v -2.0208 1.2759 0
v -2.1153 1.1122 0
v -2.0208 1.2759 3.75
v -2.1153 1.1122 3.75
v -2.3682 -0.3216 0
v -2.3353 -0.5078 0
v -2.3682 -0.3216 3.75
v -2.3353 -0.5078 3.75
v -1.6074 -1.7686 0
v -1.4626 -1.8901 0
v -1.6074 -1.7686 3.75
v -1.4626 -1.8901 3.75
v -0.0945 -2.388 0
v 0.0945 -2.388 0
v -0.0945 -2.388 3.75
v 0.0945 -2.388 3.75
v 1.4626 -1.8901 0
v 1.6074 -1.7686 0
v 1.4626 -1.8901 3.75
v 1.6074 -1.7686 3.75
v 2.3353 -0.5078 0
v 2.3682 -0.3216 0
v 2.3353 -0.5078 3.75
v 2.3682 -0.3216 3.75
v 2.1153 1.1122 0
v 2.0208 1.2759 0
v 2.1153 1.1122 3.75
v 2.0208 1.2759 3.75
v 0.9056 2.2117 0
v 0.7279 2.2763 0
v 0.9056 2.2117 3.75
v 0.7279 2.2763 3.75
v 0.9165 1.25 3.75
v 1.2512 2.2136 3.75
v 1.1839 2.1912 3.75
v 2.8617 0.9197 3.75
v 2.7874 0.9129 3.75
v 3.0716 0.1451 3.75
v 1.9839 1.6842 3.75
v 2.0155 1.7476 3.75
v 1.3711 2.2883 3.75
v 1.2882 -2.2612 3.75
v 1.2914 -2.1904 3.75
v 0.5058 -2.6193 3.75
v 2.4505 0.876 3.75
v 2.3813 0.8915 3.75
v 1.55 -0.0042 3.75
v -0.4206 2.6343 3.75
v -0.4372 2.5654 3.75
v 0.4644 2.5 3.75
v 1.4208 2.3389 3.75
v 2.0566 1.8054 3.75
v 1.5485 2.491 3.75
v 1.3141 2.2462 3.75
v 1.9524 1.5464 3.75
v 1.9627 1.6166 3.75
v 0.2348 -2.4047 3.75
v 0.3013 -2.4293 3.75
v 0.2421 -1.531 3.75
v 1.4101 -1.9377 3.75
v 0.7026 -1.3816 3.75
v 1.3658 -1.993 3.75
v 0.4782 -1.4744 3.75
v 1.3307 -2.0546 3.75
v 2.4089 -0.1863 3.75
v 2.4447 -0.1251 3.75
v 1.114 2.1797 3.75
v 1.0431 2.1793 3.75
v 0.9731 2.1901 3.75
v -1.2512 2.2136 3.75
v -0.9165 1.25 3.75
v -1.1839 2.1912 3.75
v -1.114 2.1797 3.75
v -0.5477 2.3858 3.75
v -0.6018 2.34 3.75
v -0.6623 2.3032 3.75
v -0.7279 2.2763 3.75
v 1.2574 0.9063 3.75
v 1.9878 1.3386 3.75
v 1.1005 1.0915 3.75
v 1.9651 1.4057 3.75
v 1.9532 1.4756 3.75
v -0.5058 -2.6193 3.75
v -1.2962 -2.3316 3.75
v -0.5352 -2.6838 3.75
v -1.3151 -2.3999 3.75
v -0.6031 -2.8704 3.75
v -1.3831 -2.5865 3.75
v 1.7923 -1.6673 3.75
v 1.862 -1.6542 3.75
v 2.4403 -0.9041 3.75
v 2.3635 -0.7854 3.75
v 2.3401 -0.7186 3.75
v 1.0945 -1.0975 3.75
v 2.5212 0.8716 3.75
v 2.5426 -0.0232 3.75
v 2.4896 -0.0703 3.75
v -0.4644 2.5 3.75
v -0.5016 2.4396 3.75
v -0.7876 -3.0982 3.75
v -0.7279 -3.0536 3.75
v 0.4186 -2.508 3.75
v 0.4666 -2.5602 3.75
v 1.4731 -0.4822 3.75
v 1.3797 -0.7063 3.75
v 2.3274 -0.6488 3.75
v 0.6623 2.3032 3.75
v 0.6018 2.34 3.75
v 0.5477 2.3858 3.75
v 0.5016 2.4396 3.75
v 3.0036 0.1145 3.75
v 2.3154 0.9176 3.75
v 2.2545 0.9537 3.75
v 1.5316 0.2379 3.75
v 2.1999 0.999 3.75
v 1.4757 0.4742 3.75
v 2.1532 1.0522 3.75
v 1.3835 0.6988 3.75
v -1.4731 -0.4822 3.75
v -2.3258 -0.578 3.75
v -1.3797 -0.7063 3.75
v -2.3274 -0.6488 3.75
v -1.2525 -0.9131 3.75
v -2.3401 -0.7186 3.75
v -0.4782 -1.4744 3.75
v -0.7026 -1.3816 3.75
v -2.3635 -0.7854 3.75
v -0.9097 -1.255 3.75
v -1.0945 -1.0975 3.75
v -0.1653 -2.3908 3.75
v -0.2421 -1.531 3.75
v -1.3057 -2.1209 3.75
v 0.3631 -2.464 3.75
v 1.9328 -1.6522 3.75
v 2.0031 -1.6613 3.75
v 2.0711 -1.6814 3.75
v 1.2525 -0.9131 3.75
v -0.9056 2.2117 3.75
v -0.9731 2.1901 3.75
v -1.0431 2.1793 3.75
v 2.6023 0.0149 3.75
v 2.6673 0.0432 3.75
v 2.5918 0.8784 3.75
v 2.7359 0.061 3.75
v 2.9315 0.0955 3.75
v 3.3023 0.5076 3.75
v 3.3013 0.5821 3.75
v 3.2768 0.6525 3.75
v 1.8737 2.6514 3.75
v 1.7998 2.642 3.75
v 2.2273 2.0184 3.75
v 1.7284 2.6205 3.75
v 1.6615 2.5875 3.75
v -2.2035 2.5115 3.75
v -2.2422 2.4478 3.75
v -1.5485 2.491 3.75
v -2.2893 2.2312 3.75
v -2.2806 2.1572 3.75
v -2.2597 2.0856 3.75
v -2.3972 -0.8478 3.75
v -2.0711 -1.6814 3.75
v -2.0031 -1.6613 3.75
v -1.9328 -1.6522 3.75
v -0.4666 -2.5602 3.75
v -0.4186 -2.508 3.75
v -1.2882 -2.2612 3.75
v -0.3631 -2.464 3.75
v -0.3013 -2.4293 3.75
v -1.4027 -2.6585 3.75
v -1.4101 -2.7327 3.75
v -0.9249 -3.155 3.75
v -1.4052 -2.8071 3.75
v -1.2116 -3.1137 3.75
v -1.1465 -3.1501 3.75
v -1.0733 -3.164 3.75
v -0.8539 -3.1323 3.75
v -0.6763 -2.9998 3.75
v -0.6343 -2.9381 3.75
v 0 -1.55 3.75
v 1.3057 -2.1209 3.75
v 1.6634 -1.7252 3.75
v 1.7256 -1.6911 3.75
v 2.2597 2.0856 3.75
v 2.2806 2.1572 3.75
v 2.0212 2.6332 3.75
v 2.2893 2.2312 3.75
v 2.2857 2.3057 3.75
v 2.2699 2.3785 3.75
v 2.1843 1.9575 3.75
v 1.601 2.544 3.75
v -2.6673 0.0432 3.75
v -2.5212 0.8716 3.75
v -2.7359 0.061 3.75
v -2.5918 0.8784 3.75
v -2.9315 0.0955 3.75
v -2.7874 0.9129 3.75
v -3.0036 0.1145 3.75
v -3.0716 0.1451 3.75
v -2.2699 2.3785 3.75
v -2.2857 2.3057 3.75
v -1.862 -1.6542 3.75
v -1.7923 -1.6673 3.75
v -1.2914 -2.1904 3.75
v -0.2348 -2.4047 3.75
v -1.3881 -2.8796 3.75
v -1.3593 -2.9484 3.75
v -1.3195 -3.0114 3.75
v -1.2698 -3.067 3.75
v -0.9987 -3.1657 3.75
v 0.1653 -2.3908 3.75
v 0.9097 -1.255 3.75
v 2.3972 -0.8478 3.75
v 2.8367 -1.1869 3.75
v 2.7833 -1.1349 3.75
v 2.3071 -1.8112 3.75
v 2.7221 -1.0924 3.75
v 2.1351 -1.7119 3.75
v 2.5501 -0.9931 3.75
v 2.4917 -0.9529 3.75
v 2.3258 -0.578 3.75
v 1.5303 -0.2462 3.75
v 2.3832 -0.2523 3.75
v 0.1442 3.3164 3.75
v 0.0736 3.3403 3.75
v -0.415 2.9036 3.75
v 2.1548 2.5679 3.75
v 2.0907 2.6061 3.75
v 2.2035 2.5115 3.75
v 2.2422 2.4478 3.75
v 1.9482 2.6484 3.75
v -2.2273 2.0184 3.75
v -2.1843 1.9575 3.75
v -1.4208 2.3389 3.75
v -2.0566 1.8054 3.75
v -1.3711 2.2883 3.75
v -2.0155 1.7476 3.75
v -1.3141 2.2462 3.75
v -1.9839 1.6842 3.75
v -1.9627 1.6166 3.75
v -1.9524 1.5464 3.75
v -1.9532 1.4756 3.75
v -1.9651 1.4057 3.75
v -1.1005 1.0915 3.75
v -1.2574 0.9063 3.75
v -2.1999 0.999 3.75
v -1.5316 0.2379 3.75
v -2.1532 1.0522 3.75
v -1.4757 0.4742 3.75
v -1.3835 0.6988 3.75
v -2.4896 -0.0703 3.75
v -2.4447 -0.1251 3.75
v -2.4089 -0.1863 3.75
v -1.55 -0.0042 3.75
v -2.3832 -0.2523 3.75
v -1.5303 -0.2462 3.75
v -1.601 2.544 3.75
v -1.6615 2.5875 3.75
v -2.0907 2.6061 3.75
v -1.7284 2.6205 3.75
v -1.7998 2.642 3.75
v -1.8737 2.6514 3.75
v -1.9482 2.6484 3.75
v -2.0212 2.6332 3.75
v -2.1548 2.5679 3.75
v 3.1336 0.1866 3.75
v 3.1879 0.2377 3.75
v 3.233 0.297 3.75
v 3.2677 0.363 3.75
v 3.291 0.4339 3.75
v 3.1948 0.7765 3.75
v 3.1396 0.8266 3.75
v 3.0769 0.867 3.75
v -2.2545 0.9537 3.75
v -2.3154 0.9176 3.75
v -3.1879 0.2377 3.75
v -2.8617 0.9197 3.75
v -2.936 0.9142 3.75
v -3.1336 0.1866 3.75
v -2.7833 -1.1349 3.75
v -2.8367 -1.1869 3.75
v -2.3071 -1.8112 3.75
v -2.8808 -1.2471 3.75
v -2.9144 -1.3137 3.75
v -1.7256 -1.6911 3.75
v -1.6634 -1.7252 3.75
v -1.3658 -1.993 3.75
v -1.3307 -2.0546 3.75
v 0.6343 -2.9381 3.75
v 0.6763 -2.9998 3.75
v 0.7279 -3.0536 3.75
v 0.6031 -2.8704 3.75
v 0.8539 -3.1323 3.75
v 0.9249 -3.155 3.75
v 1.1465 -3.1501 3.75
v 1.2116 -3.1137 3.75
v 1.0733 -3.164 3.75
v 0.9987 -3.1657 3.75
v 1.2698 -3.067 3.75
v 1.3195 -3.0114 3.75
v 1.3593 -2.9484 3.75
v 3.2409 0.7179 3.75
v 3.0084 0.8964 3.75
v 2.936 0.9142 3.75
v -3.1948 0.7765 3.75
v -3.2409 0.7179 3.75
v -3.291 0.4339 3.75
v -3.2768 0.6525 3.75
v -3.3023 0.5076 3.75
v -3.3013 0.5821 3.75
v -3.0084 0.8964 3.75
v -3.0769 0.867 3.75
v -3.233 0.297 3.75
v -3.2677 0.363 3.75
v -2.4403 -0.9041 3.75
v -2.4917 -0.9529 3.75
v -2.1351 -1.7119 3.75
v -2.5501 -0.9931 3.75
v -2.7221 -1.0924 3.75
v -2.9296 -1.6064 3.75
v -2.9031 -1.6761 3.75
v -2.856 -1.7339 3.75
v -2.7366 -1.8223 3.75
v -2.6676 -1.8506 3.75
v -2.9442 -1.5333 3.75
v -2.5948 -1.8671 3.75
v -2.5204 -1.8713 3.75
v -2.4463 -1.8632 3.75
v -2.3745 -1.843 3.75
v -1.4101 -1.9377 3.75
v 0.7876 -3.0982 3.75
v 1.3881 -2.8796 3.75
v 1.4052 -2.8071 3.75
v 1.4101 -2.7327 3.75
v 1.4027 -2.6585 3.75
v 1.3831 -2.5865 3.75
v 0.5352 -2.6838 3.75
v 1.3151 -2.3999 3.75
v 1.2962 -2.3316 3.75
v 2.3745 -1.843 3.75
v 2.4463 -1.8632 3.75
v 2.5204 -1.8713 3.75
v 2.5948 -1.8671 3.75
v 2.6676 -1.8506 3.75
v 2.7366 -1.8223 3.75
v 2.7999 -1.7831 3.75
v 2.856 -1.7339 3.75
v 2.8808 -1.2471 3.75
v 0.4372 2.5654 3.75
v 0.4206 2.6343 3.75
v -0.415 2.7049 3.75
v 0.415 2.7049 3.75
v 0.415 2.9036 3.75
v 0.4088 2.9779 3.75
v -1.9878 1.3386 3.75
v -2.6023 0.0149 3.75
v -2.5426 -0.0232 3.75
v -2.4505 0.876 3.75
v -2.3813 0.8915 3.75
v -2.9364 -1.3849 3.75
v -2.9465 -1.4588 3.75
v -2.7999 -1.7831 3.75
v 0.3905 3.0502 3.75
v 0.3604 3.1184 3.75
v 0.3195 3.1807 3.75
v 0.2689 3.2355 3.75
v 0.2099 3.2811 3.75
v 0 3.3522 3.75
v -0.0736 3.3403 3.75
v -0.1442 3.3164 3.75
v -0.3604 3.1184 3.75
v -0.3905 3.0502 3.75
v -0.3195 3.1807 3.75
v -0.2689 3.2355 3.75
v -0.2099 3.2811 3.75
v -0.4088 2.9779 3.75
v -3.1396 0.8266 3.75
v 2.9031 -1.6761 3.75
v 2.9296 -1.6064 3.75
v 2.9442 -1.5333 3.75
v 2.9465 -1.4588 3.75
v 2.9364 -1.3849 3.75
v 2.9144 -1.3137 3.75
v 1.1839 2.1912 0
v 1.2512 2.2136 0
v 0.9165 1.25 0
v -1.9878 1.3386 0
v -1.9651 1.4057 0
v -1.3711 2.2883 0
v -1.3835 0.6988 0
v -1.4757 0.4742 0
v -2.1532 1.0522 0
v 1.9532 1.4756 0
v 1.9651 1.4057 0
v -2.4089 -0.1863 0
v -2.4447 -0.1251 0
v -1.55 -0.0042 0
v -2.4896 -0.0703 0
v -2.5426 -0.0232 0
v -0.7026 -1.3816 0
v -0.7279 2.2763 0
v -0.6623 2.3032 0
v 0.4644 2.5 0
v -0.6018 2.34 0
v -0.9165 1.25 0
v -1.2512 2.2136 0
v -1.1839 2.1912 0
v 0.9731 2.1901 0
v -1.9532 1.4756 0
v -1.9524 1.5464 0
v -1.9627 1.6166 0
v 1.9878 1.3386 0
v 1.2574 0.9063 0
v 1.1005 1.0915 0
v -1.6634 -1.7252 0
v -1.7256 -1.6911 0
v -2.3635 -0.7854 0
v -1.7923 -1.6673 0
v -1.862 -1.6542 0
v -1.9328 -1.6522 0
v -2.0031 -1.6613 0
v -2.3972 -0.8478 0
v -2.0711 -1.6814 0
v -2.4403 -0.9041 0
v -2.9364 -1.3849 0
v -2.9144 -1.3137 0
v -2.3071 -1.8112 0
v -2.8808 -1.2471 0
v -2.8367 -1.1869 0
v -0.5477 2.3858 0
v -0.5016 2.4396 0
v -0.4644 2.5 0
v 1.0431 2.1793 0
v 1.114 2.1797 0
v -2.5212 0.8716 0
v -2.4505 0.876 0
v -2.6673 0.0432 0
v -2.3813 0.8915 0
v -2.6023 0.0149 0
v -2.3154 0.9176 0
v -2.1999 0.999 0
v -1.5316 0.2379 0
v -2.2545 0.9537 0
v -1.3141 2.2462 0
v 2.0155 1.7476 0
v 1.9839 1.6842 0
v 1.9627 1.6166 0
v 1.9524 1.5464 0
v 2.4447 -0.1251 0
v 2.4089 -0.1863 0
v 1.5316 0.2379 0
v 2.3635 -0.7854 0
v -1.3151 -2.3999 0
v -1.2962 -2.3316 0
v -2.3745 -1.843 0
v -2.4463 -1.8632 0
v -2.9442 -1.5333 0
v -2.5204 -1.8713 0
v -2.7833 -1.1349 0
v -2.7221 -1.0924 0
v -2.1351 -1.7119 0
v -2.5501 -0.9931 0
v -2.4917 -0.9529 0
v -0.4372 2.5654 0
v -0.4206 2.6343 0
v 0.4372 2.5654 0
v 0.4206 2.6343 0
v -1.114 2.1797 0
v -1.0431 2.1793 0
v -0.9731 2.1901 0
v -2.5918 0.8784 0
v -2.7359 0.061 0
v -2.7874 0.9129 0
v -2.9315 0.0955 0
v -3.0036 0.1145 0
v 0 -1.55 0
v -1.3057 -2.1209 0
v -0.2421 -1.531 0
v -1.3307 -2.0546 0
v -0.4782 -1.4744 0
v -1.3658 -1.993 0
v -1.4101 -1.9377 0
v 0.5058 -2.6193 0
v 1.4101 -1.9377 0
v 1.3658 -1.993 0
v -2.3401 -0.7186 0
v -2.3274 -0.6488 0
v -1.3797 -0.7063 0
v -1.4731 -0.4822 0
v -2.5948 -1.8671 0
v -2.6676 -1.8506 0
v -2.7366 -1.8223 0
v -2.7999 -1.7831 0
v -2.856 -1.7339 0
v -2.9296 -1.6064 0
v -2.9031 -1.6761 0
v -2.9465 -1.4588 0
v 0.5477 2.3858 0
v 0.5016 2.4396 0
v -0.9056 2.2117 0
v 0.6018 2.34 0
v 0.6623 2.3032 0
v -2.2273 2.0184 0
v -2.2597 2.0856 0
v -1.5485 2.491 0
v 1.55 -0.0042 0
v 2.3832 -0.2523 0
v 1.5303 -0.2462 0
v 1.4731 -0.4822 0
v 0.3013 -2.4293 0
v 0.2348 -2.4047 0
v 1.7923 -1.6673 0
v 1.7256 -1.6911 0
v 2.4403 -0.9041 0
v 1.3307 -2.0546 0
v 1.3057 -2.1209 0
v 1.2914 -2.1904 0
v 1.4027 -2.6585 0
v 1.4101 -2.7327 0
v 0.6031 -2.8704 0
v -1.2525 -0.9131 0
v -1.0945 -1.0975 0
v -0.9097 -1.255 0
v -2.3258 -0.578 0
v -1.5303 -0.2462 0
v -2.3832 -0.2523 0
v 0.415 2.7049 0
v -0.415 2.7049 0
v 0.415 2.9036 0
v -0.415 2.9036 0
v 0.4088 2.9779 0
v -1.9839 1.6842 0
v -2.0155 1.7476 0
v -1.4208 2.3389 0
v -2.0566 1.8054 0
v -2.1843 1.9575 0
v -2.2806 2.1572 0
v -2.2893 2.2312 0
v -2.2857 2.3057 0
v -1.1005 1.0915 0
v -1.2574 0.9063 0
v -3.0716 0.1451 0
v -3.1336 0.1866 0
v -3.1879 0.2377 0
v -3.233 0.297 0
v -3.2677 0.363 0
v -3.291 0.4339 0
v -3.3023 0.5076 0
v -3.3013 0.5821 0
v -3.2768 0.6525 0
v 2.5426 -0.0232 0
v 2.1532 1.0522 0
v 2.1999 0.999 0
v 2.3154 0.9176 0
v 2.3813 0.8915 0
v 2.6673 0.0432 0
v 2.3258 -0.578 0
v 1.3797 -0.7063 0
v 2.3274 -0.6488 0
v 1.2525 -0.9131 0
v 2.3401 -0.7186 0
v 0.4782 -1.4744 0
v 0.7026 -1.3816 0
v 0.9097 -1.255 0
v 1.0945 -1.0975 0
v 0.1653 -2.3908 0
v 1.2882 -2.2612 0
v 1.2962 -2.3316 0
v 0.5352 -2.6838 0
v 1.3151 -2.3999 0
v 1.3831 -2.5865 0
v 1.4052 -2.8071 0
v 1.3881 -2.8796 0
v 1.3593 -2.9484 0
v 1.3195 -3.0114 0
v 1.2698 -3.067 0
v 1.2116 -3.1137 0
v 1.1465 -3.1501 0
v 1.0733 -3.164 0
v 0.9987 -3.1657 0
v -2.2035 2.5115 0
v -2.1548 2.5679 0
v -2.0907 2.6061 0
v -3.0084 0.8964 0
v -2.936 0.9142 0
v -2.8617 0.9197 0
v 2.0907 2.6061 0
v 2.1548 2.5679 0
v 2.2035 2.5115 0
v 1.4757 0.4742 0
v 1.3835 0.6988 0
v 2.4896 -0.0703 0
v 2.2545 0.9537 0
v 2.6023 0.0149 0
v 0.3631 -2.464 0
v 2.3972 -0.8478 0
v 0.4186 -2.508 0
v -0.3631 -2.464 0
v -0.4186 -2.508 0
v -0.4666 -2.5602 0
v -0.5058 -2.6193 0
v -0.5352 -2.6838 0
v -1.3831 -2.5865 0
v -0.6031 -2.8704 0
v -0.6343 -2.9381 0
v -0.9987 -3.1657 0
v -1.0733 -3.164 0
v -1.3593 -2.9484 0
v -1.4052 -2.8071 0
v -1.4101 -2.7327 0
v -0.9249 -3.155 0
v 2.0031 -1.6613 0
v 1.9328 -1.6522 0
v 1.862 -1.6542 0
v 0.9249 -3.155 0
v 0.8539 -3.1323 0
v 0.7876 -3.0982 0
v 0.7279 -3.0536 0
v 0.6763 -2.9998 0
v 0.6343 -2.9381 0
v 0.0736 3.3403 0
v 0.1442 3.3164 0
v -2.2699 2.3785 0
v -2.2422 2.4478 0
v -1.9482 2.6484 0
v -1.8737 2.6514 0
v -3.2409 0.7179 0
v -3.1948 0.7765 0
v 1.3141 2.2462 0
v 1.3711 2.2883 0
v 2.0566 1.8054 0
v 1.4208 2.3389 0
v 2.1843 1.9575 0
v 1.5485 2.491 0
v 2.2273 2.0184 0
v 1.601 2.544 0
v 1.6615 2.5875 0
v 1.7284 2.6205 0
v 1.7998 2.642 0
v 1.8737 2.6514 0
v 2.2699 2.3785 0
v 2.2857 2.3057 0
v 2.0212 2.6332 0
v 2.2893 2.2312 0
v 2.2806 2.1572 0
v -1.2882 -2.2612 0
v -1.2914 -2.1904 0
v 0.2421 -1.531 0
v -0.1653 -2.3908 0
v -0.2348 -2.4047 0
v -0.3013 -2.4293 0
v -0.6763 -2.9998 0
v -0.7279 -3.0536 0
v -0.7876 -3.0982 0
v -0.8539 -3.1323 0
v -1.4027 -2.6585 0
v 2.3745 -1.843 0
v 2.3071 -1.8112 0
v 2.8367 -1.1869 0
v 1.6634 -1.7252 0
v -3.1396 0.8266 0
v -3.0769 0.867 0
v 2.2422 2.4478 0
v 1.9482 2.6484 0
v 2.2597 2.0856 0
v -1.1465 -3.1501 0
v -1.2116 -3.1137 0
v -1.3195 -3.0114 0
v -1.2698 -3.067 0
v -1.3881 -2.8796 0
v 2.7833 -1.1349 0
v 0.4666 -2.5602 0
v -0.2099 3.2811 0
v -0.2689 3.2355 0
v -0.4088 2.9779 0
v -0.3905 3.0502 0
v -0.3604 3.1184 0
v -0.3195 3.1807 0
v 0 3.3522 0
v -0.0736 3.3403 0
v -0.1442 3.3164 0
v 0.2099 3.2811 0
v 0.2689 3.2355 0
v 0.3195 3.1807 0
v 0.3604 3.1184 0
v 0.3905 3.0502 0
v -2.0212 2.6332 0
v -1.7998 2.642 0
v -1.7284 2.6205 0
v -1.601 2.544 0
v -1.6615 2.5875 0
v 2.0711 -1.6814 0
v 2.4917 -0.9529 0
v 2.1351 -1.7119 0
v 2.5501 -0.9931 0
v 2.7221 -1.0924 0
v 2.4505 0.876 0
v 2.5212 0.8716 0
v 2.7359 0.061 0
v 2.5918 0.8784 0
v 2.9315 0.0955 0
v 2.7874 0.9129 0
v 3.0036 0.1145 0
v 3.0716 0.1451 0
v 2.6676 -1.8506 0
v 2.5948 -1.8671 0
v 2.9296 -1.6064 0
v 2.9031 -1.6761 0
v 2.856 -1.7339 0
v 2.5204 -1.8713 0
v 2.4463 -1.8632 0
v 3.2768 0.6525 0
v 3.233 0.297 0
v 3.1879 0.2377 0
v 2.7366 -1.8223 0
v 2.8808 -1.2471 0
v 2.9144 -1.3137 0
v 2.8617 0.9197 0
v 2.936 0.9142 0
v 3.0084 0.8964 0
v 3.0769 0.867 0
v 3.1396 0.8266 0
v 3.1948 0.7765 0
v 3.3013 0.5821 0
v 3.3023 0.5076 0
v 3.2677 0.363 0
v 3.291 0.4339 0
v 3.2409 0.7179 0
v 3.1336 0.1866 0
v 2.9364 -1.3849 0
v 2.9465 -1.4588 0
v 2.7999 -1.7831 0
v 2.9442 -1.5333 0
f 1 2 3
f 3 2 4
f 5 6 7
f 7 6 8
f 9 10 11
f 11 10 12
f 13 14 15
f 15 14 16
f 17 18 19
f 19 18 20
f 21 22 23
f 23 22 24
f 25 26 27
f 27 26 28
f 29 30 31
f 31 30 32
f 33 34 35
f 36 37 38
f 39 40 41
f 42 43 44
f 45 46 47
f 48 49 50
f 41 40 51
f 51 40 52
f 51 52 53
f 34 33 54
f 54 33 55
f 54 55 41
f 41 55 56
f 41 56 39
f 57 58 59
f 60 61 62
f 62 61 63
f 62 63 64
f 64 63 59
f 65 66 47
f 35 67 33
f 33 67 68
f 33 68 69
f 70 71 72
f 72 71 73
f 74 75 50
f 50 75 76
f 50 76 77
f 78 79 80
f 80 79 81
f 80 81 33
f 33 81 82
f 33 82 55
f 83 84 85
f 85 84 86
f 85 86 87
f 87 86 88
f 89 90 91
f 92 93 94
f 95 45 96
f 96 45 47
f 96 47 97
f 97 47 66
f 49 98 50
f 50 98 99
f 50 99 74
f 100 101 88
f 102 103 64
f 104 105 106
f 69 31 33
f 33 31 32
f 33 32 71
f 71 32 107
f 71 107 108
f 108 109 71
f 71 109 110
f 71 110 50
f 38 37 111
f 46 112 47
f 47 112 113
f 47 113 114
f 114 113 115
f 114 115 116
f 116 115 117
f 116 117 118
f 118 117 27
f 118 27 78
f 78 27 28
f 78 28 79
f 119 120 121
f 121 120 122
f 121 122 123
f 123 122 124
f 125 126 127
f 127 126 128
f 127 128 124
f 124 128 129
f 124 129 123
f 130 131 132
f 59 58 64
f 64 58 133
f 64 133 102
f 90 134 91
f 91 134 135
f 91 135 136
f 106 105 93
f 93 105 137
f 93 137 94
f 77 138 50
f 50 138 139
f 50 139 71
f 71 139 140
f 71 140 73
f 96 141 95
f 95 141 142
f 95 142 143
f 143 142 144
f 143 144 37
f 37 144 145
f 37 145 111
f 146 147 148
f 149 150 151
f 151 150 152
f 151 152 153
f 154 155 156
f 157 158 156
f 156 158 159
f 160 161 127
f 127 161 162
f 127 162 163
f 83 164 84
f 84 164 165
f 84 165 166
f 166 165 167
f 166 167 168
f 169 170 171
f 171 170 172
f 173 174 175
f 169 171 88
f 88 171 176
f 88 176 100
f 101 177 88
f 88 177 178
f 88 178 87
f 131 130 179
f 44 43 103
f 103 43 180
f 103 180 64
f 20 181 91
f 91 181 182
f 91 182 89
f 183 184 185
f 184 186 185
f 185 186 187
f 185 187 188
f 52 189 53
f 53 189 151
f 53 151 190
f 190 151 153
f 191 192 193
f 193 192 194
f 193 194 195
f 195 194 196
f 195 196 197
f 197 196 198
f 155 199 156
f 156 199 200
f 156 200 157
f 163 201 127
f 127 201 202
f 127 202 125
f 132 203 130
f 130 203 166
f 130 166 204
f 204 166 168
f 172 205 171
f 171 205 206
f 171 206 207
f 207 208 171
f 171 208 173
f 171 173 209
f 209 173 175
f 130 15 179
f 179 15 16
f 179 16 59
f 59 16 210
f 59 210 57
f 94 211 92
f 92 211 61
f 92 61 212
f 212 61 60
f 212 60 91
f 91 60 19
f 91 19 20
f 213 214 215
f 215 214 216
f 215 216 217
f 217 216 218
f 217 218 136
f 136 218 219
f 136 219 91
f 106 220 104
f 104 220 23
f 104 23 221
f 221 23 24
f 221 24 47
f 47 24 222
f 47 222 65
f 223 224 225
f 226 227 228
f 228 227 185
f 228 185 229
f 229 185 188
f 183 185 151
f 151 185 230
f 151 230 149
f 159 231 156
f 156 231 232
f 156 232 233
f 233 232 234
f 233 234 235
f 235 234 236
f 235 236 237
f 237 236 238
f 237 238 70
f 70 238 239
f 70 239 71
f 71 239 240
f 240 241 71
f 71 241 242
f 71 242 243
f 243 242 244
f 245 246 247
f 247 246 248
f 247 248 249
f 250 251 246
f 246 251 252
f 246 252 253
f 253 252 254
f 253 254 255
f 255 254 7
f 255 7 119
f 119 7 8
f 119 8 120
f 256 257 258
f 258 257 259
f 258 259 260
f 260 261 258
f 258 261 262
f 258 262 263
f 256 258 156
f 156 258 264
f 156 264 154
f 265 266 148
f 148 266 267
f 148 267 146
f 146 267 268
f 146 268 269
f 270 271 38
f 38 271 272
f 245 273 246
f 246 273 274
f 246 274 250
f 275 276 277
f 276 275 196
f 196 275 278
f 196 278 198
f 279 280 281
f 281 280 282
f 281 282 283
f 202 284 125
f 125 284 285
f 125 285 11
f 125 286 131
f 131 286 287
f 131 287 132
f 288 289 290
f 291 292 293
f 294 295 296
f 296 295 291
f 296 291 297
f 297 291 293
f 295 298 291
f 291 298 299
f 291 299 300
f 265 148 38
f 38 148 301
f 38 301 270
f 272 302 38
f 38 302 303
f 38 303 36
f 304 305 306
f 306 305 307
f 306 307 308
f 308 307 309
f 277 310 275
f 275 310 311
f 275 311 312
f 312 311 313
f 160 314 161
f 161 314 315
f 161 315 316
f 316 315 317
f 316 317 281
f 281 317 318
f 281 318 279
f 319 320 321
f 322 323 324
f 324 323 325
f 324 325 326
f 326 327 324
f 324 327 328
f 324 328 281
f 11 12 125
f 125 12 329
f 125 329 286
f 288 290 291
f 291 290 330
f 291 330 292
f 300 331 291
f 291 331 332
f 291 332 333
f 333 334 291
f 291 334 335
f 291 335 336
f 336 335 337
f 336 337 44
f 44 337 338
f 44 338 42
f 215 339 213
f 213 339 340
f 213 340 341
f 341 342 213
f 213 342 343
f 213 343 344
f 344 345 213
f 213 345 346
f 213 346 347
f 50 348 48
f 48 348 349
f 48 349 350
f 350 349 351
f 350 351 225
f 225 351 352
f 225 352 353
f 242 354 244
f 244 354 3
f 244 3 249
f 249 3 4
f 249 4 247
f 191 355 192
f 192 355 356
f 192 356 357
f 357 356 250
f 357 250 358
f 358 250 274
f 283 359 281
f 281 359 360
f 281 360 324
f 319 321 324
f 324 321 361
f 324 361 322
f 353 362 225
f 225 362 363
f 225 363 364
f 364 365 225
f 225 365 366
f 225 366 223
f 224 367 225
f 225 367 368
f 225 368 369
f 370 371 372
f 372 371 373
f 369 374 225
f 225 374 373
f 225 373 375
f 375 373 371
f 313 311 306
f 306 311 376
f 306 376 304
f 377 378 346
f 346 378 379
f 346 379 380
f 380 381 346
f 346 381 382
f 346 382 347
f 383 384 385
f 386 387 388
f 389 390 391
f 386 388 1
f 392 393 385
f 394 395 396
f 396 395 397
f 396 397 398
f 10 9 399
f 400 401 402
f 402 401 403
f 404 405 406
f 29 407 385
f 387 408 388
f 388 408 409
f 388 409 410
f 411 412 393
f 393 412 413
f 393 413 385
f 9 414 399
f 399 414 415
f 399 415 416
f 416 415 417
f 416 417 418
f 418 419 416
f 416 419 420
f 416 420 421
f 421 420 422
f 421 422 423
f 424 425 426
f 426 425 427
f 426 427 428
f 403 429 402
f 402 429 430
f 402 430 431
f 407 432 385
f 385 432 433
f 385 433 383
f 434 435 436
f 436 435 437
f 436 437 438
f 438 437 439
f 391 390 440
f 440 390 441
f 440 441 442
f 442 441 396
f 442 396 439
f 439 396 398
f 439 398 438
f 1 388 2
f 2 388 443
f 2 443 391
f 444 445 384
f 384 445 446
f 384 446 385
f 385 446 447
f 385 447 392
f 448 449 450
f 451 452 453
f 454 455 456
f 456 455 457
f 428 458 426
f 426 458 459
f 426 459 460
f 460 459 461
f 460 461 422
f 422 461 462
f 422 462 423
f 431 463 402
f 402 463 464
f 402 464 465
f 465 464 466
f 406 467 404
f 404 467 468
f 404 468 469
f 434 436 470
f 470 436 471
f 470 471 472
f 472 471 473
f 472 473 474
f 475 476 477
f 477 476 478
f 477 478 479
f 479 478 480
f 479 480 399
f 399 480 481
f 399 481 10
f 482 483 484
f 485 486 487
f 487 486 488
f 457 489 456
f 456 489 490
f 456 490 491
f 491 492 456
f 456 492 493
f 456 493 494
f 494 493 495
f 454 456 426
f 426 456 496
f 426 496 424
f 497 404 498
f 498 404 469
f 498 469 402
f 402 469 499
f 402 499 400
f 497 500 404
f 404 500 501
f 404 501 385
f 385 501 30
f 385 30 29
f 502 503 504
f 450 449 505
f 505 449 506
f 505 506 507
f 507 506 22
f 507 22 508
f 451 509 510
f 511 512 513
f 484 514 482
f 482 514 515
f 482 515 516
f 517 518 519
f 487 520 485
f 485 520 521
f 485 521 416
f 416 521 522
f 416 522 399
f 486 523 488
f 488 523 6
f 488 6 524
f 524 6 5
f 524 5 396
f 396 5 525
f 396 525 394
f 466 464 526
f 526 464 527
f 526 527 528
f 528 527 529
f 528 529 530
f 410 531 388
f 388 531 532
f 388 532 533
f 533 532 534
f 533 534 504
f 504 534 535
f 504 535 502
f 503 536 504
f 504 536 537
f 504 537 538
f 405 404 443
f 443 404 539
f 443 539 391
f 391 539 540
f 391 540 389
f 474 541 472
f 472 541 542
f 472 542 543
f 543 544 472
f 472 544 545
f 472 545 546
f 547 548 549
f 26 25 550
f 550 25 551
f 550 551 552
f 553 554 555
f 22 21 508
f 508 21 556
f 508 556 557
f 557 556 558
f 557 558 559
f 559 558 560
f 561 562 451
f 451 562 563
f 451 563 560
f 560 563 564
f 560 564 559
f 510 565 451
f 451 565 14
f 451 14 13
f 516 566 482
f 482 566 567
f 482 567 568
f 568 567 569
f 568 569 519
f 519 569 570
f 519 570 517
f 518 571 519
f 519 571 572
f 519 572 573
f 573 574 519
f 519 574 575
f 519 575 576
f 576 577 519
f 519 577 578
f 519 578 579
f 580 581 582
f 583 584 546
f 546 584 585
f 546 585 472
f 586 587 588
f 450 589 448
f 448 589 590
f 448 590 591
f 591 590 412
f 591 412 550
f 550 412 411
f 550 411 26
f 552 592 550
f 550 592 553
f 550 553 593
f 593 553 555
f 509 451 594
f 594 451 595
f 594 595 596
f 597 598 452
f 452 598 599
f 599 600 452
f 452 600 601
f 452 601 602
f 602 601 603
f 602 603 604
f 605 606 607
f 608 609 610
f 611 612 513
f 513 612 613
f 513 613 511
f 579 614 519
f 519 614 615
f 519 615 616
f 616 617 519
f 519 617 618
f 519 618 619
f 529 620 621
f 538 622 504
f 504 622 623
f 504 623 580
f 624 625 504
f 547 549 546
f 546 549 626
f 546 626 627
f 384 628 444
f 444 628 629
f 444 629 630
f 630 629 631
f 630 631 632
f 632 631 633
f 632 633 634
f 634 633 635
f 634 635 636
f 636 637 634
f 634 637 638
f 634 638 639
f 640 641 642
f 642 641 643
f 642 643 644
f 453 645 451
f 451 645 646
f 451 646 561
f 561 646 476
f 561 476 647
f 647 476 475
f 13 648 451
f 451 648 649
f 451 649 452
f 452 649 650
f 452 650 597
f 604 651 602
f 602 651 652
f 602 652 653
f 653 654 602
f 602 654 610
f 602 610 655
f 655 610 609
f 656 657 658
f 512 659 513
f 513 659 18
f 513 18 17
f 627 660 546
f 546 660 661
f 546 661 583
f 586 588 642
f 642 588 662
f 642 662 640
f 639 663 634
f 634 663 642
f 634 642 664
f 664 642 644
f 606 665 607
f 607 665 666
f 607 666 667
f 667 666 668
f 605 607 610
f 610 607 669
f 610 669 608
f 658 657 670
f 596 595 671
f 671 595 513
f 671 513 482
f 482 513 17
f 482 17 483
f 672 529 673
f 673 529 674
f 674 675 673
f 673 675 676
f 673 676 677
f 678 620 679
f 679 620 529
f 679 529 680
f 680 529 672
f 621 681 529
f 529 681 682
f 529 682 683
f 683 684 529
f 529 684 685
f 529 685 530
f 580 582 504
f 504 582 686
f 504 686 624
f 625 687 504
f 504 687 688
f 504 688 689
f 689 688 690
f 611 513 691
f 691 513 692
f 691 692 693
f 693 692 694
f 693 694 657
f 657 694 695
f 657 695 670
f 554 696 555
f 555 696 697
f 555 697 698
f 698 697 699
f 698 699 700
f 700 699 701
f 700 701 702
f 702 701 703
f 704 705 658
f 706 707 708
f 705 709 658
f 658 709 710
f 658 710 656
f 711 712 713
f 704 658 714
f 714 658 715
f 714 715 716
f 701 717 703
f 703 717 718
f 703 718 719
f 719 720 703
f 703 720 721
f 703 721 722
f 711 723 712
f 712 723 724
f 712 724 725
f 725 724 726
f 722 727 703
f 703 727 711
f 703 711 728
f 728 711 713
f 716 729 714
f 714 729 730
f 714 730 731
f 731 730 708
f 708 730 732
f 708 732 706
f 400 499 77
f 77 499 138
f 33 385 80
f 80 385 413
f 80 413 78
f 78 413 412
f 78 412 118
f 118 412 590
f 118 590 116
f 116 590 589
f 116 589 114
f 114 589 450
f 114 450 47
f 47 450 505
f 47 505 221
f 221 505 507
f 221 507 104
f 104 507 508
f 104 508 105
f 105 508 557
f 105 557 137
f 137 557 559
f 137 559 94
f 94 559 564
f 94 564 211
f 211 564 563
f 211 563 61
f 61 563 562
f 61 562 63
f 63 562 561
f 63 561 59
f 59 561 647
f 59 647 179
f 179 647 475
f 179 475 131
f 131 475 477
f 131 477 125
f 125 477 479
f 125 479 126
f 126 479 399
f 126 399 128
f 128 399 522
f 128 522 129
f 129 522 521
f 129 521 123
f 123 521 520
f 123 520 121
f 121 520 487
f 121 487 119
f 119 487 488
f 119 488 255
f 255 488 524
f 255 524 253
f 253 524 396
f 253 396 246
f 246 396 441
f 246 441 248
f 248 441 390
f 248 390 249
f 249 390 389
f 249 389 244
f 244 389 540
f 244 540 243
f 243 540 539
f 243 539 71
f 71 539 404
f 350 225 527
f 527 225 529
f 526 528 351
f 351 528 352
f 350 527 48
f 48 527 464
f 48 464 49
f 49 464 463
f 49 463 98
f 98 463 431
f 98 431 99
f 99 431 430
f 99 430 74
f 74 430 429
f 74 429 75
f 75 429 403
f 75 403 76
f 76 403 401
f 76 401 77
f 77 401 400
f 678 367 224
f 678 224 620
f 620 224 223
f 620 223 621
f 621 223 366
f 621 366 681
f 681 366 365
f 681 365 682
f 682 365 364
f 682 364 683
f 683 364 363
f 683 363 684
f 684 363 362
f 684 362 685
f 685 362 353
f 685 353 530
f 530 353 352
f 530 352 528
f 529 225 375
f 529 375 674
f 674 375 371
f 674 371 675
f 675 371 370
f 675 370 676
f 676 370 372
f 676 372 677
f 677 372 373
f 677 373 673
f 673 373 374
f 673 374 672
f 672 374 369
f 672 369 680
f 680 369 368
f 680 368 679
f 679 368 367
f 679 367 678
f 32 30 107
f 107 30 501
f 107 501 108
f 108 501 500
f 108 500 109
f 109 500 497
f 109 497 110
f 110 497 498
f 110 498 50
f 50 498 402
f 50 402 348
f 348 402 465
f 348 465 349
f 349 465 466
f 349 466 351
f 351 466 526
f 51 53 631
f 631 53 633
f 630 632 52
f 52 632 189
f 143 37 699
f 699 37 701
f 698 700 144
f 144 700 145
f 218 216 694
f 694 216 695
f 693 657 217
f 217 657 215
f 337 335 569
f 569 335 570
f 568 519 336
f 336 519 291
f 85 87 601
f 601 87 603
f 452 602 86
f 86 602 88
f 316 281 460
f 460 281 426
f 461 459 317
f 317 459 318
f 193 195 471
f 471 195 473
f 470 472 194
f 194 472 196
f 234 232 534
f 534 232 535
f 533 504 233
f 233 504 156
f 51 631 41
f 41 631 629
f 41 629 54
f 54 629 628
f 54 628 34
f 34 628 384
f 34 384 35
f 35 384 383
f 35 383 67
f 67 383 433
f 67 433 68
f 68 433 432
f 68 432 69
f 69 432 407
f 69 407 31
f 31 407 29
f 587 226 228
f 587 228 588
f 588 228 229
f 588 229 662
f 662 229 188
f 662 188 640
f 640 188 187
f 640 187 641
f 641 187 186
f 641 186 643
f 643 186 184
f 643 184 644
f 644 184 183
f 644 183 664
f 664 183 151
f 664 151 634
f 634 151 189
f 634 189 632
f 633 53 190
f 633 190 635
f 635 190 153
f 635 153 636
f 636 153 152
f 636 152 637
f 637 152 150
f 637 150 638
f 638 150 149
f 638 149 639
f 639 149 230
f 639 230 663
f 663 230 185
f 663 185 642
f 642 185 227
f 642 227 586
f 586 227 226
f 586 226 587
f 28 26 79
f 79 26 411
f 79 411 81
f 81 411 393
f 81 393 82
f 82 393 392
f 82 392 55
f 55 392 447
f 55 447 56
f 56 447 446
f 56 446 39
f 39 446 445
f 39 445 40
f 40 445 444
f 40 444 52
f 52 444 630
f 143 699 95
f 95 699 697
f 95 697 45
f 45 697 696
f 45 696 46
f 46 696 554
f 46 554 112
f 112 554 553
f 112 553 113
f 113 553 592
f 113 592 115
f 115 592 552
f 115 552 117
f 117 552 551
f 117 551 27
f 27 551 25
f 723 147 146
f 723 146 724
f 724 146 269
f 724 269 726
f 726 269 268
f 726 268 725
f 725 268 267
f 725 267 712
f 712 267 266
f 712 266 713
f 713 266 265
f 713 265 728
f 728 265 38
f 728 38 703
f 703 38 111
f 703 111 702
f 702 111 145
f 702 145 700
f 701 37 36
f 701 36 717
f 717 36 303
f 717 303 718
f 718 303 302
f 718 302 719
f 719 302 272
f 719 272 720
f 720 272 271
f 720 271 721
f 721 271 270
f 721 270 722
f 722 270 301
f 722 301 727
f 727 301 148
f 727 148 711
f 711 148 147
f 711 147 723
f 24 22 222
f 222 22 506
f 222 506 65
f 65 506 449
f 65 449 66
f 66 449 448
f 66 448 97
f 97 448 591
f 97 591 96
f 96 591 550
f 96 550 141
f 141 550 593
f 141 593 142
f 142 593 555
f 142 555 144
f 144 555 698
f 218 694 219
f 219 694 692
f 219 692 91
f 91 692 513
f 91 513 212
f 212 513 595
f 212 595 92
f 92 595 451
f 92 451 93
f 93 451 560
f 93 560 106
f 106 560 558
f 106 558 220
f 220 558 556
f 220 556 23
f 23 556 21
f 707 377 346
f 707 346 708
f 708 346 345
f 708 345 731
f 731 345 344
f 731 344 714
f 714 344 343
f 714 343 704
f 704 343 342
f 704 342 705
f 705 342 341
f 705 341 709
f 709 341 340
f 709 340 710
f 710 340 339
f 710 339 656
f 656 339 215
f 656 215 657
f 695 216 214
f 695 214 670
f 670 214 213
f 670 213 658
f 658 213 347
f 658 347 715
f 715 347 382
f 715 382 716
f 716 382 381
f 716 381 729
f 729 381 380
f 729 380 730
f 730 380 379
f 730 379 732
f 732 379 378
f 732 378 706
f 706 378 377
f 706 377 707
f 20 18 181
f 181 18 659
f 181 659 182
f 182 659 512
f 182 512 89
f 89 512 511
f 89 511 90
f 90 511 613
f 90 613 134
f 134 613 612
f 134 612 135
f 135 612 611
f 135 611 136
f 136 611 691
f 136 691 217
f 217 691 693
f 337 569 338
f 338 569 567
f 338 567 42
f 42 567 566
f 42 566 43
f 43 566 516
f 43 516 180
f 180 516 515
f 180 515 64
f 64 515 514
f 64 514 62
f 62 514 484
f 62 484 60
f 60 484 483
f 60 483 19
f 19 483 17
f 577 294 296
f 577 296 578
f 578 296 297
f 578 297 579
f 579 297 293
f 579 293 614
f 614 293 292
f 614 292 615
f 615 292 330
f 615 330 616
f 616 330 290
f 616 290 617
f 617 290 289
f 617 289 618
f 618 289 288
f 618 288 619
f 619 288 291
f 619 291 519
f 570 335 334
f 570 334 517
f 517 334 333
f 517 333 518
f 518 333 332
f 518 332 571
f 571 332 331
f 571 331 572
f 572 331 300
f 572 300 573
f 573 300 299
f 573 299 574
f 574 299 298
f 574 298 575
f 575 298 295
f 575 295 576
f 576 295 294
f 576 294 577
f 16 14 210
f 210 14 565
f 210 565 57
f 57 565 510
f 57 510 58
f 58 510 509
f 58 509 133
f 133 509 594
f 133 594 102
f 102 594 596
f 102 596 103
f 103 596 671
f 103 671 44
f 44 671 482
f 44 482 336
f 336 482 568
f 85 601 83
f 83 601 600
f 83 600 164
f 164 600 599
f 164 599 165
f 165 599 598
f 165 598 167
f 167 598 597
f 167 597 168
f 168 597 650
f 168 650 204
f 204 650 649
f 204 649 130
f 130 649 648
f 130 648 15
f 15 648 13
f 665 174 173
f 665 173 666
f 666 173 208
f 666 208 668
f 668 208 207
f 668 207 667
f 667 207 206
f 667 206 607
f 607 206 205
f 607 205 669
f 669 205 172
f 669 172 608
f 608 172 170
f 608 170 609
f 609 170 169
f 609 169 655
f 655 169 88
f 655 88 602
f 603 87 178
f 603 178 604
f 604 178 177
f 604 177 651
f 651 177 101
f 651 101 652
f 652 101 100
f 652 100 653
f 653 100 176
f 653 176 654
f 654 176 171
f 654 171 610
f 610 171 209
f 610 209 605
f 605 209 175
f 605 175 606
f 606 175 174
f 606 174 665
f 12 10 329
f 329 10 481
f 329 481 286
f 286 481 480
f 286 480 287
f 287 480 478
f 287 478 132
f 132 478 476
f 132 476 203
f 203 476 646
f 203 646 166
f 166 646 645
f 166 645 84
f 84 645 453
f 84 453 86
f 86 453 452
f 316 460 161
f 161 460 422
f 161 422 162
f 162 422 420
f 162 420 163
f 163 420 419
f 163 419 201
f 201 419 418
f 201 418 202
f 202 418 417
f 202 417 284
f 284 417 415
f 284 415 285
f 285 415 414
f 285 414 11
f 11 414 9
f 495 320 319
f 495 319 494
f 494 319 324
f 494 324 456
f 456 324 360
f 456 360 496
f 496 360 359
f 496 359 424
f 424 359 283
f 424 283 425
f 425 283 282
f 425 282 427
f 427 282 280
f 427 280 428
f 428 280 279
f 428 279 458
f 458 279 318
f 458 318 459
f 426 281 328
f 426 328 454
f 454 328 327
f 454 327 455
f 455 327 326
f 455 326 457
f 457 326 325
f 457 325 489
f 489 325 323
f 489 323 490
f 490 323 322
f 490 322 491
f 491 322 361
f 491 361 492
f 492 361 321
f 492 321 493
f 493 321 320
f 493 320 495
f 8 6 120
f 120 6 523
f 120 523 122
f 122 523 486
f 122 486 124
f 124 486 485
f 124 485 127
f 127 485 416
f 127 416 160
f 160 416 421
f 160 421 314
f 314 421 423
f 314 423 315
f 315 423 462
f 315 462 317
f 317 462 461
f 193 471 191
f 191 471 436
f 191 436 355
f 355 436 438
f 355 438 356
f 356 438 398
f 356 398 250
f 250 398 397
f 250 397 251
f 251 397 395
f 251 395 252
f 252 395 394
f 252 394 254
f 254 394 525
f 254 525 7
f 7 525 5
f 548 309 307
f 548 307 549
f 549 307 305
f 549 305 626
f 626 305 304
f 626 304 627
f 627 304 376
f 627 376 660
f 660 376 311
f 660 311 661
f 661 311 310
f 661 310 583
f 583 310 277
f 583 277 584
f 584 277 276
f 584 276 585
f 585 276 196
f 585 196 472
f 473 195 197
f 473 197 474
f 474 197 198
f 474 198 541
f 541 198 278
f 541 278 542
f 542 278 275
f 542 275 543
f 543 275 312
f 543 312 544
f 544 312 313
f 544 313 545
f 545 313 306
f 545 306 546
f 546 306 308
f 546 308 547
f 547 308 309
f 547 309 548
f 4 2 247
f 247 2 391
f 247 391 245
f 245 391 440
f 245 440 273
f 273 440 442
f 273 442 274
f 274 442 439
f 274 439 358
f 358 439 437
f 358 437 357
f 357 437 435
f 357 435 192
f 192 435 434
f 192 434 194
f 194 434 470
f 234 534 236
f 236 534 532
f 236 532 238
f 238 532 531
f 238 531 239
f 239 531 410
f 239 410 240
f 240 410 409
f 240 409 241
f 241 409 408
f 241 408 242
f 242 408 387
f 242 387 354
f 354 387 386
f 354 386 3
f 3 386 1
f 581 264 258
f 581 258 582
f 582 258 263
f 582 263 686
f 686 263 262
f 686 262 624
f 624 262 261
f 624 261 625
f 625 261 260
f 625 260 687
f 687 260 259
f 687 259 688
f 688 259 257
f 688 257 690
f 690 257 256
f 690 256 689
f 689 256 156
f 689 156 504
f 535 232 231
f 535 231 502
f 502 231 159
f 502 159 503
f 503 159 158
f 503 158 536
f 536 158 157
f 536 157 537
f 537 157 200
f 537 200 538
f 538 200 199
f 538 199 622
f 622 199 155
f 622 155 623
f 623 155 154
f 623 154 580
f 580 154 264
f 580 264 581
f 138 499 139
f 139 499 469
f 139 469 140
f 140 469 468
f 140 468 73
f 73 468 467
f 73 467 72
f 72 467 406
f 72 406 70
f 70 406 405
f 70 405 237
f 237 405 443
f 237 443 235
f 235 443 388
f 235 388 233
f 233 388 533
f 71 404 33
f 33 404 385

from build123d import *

# Parameters (mm, degrees)
SKETCH1_R                = 2.389889751
SKETCH1_R_2              = 1.55
BOSS_EXTRUDE1_DEPTH      = 3.75
SKETCH2_W                = 0.83
SKETCH2_H                = 1
BOSS_EXTRUDE2_DEPTH      = 3.75
FILLET1_R                = 0.45
CIRPATTERN1_COUNT        = 9
FILLET1_OF_CIRPATTERN1_R = 0.45
SKETCH3_W                = 1.833030278
SKETCH3_H                = 0.3
BOSS_EXTRUDE3_DEPTH      = 3.75


with BuildPart() as part:
    # Sketch1 → Boss-Extrude1 (new body)
    with BuildSketch(Plane.XY):
        Circle(SKETCH1_R)
        Circle(SKETCH1_R_2, mode=Mode.SUBTRACT)
    extrude(amount=BOSS_EXTRUDE1_DEPTH)

    # Sketch2 → Boss-Extrude2 (add)
    with BuildSketch(Plane.XY.offset(3.75)):
        with Locations((0, 2.853581955)):
            Rectangle(SKETCH2_W, SKETCH2_H)
    boss_extrude2 = extrude(amount=-BOSS_EXTRUDE2_DEPTH)

    # Fillet1
    # the kernel refuses this fillet: 0.45 mm, written as the material it adds along each edge
    with BuildSketch(Plane(origin=(-0.415, 2.353581955, 3.75), x_dir=(-0.970855819199755, -0.2396643034036823, 0), z_dir=(0, 0, -1))) as fillet1_piece_1:
        with BuildLine():
            CenterArc((0.352674994, 0.448975623), FILLET1_R, 193.866728132, 72.266543736)
            Line((-0.084210125, 0.341126687), (0, 0))
            ThreePointArc((0, 0), (0.161164415, 0.005440327), (0.32232883, 0))
        make_face()
    extrude(amount=3.75)
    with BuildSketch(Plane(origin=(0.415, 2.353581955, 3.75), x_dir=(0.9708558191997549, -0.2396643034036833, 0), z_dir=(0, 0, -1))) as fillet1_piece_2:
        with BuildLine():
            CenterArc((0.352674994, -0.448975623), FILLET1_R, 93.866728132, 72.266543736)
            Line((-0.084210125, -0.341126687), (0, 0))
            ThreePointArc((0, 0), (0.161164415, -0.005440327), (0.32232883, 0))
        make_face()
    extrude(amount=3.75)
    # the kernel refuses this fillet: 0.45 mm, written as the material it takes off along each edge
    with BuildSketch(Plane(origin=(-0.415, 3.353581955, 4.875), x_dir=(1, 0, 0), z_dir=(0, 0, -1)), Plane(origin=(0.415, 3.353581955, 4.875), x_dir=(0, -1, 0), z_dir=(0, 0, -1))) as fillet1_2_piece_1:
        with BuildLine():
            CenterArc((FILLET1_R, FILLET1_R), FILLET1_R, 180, 90)
            Line((0, FILLET1_R), (0, 0))
            Line((0, 0), (FILLET1_R, 0))
        make_face()
    extrude(amount=6, mode=Mode.SUBTRACT)

    # CirPattern1: Boss-Extrude2 ×9 about axis
    cirpattern1_axis = Axis((0, 0, 0), (0, 0, 1))
    for i in range(1, CIRPATTERN1_COUNT):
        add(boss_extrude2.rotate(cirpattern1_axis, i * 360 / CIRPATTERN1_COUNT))

    # Fillet1 of CirPattern1
    # the kernel refuses this fillet: 0.45 mm, written as the material it adds along each edge
    with BuildSketch(Plane(origin=(-1.830761763, 1.53619152, 3.75), x_dir=(-0.5896654606556537, -0.8076475992100489, 0), z_dir=(0, 0, -1)), Plane(origin=(-2.389889751, 0, 3.75), x_dir=(0.06743592033084408, -0.9977236073428011, 0), z_dir=(0, 0, -1)), Plane(origin=(-1.830761763, -1.53619152, 3.75), x_dir=(0.6929832847277674, -0.7209536511370993, 0), z_dir=(0, 0, -1)), Plane(origin=(-0.415, -2.353581955, 3.75), x_dir=(0.994276068549242, -0.10684146905702349, 0), z_dir=(0, 0, -1)), Plane(origin=(1.194944875, -2.069705236, 3.75), x_dir=(0.8303360297488931, 0.5572630238054965, 0), z_dir=(0, 0, -1)), Plane(origin=(2.245761763, -0.817390435, 3.75), x_dir=(0.2778725344719876, 0.960617954540781, 0), z_dir=(0, 0, -1)), Plane(origin=(2.245761763, 0.817390435, 3.75), x_dir=(-0.4046106078935896, 0.9144890682670732, 0), z_dir=(0, 0, -1)), Plane(origin=(1.194944875, 2.069705236, 3.75), x_dir=(-0.8977719500797382, 0.44046058353730577, 0), z_dir=(0, 0, -1))) as fillet1_of_cirpattern1_piece_1:
        with BuildLine():
            CenterArc((0.352674994, 0.448975623), FILLET1_OF_CIRPATTERN1_R, 193.866728132, 72.266543736)
            Line((-0.084210125, 0.341126687), (0, 0))
            ThreePointArc((0, 0), (0.161164415, 0.005440327), (0.32232883, 0))
        make_face()
    extrude(amount=3.75)
    with BuildSketch(Plane(origin=(-1.194944875, 2.069705236, 3.75), x_dir=(-0.6427876096865393, 0.7660444431189779, 0), z_dir=(0, 0, -1)), Plane(origin=(-2.245761763, 0.817390435, 3.75), x_dir=(-0.9848077530122081, 0.17364817766693041, 0), z_dir=(0, 0, -1)), Plane(origin=(-2.245761763, -0.817390435, 3.75), x_dir=(-0.8660254037844392, -0.4999999999999993, 0), z_dir=(0, 0, -1)), Plane(origin=(-1.194944875, -2.069705236, 3.75), x_dir=(-0.34202014332566916, -0.9396926207859083, 0), z_dir=(0, 0, -1)), Plane(origin=(0.415, -2.353581955, 3.75), x_dir=(0.3420201433256687, -0.9396926207859083, 0), z_dir=(0, 0, -1)), Plane(origin=(1.830761763, -1.53619152, 3.75), x_dir=(0.8660254037844389, -0.49999999999999944, 0), z_dir=(0, 0, -1)), Plane(origin=(2.389889751, 0, 3.75), x_dir=(0.984807753012208, 0.1736481776669301, 0), z_dir=(0, 0, -1))) as fillet1_of_cirpattern1_piece_2:
        with BuildLine():
            CenterArc((0.35136699, 0.45), FILLET1_OF_CIRPATTERN1_R, 197.733456264, 72.266543736)
            ThreePointArc((-0.077250714, 0.31293482), (-0.033343584, 0.157771262), (0, 0))
            Line((0, 0), (0.35136699, 0))
        make_face()
    extrude(amount=3.75)
    with BuildSketch(Plane(origin=(1.830761763, 1.53619152, 3.75), x_dir=(0.5896654606556527, -0.8076475992100495, 0), z_dir=(0, 0, -1))) as fillet1_of_cirpattern1_piece_3:
        with BuildLine():
            CenterArc((0.352674994, -0.448975623), FILLET1_OF_CIRPATTERN1_R, 93.866728132, 72.266543736)
            Line((-0.084210125, -0.341126687), (0, 0))
            ThreePointArc((0, 0), (0.161164415, -0.005440327), (0.32232883, 0))
        make_face()
    extrude(amount=3.75)
    # the kernel refuses this fillet: 0.45 mm, written as the material it takes off along each edge
    with BuildSketch(Plane(origin=(-2.473549373, 2.302235963, 4.875), x_dir=(0.7660444431189787, 0.6427876096865386, 0), z_dir=(0, 0, -1)), Plane(origin=(-1.837732485, 2.835749679, 4.875), x_dir=(0.6427876096865393, -0.766044443118978, 0), z_dir=(0, 0, -1)), Plane(origin=(-3.374697504, 0.173648178, 4.875), x_dir=(0.17364817766693086, 0.984807753012208, 0), z_dir=(0, 0, -1)), Plane(origin=(-3.230569516, 0.991038613, 4.875), x_dir=(0.9848077530122081, -0.17364817766693022, 0), z_dir=(0, 0, -1)), Plane(origin=(-2.696787167, -2.03619152, 4.875), x_dir=(-0.5000000000000001, 0.8660254037844386, 0), z_dir=(0, 0, -1)), Plane(origin=(-3.111787167, -1.317390435, 4.875), x_dir=(0.8660254037844386, 0.5000000000000001, 0), z_dir=(0, 0, -1)), Plane(origin=(-0.757020143, -3.293274576, 4.875), x_dir=(-0.9396926207859084, 0.34202014332566855, 0), z_dir=(0, 0, -1)), Plane(origin=(-1.536965019, -3.009397857, 4.875), x_dir=(0.3420201433256694, 0.9396926207859081, 0), z_dir=(0, 0, -1)), Plane(origin=(1.536965019, -3.009397857, 4.875), x_dir=(-0.9396926207859084, -0.34202014332566855, 0), z_dir=(0, 0, -1)), Plane(origin=(0.757020143, -3.293274576, 4.875), x_dir=(-0.3420201433256689, 0.9396926207859084, 0), z_dir=(0, 0, -1)), Plane(origin=(3.111787167, -1.317390435, 4.875), x_dir=(-0.5000000000000004, -0.8660254037844384, 0), z_dir=(0, 0, -1)), Plane(origin=(2.696787167, -2.03619152, 4.875), x_dir=(-0.8660254037844384, 0.5000000000000004, 0), z_dir=(0, 0, -1)), Plane(origin=(3.230569516, 0.991038613, 4.875), x_dir=(0.17364817766692991, -0.9848077530122081, 0), z_dir=(0, 0, -1)), Plane(origin=(3.374697504, 0.173648178, 4.875), x_dir=(-0.9848077530122081, -0.17364817766692986, 0), z_dir=(0, 0, -1)), Plane(origin=(1.837732485, 2.835749679, 4.875), x_dir=(0.766044443118978, -0.6427876096865394, 0), z_dir=(0, 0, -1)), Plane(origin=(2.473549373, 2.302235963, 4.875), x_dir=(-0.6427876096865394, -0.766044443118978, 0), z_dir=(0, 0, -1))) as fillet1_of_cirpattern1_2_piece_1:
        with BuildLine():
            CenterArc((FILLET1_OF_CIRPATTERN1_R, FILLET1_OF_CIRPATTERN1_R), FILLET1_OF_CIRPATTERN1_R, 180, 90)
            Line((0, FILLET1_OF_CIRPATTERN1_R), (0, 0))
            Line((0, 0), (FILLET1_OF_CIRPATTERN1_R, 0))
        make_face()
    extrude(amount=6, mode=Mode.SUBTRACT)

    # Sketch3 → Boss-Extrude3 (add)
    with BuildSketch(Plane(origin=(0, 0, 0), x_dir=(-1, 0, 0), z_dir=(0, 0, -1))):
        with Locations((0, 1.4)):
            Rectangle(SKETCH3_W, SKETCH3_H)
    extrude(amount=-BOSS_EXTRUDE3_DEPTH)


solid = part.part
